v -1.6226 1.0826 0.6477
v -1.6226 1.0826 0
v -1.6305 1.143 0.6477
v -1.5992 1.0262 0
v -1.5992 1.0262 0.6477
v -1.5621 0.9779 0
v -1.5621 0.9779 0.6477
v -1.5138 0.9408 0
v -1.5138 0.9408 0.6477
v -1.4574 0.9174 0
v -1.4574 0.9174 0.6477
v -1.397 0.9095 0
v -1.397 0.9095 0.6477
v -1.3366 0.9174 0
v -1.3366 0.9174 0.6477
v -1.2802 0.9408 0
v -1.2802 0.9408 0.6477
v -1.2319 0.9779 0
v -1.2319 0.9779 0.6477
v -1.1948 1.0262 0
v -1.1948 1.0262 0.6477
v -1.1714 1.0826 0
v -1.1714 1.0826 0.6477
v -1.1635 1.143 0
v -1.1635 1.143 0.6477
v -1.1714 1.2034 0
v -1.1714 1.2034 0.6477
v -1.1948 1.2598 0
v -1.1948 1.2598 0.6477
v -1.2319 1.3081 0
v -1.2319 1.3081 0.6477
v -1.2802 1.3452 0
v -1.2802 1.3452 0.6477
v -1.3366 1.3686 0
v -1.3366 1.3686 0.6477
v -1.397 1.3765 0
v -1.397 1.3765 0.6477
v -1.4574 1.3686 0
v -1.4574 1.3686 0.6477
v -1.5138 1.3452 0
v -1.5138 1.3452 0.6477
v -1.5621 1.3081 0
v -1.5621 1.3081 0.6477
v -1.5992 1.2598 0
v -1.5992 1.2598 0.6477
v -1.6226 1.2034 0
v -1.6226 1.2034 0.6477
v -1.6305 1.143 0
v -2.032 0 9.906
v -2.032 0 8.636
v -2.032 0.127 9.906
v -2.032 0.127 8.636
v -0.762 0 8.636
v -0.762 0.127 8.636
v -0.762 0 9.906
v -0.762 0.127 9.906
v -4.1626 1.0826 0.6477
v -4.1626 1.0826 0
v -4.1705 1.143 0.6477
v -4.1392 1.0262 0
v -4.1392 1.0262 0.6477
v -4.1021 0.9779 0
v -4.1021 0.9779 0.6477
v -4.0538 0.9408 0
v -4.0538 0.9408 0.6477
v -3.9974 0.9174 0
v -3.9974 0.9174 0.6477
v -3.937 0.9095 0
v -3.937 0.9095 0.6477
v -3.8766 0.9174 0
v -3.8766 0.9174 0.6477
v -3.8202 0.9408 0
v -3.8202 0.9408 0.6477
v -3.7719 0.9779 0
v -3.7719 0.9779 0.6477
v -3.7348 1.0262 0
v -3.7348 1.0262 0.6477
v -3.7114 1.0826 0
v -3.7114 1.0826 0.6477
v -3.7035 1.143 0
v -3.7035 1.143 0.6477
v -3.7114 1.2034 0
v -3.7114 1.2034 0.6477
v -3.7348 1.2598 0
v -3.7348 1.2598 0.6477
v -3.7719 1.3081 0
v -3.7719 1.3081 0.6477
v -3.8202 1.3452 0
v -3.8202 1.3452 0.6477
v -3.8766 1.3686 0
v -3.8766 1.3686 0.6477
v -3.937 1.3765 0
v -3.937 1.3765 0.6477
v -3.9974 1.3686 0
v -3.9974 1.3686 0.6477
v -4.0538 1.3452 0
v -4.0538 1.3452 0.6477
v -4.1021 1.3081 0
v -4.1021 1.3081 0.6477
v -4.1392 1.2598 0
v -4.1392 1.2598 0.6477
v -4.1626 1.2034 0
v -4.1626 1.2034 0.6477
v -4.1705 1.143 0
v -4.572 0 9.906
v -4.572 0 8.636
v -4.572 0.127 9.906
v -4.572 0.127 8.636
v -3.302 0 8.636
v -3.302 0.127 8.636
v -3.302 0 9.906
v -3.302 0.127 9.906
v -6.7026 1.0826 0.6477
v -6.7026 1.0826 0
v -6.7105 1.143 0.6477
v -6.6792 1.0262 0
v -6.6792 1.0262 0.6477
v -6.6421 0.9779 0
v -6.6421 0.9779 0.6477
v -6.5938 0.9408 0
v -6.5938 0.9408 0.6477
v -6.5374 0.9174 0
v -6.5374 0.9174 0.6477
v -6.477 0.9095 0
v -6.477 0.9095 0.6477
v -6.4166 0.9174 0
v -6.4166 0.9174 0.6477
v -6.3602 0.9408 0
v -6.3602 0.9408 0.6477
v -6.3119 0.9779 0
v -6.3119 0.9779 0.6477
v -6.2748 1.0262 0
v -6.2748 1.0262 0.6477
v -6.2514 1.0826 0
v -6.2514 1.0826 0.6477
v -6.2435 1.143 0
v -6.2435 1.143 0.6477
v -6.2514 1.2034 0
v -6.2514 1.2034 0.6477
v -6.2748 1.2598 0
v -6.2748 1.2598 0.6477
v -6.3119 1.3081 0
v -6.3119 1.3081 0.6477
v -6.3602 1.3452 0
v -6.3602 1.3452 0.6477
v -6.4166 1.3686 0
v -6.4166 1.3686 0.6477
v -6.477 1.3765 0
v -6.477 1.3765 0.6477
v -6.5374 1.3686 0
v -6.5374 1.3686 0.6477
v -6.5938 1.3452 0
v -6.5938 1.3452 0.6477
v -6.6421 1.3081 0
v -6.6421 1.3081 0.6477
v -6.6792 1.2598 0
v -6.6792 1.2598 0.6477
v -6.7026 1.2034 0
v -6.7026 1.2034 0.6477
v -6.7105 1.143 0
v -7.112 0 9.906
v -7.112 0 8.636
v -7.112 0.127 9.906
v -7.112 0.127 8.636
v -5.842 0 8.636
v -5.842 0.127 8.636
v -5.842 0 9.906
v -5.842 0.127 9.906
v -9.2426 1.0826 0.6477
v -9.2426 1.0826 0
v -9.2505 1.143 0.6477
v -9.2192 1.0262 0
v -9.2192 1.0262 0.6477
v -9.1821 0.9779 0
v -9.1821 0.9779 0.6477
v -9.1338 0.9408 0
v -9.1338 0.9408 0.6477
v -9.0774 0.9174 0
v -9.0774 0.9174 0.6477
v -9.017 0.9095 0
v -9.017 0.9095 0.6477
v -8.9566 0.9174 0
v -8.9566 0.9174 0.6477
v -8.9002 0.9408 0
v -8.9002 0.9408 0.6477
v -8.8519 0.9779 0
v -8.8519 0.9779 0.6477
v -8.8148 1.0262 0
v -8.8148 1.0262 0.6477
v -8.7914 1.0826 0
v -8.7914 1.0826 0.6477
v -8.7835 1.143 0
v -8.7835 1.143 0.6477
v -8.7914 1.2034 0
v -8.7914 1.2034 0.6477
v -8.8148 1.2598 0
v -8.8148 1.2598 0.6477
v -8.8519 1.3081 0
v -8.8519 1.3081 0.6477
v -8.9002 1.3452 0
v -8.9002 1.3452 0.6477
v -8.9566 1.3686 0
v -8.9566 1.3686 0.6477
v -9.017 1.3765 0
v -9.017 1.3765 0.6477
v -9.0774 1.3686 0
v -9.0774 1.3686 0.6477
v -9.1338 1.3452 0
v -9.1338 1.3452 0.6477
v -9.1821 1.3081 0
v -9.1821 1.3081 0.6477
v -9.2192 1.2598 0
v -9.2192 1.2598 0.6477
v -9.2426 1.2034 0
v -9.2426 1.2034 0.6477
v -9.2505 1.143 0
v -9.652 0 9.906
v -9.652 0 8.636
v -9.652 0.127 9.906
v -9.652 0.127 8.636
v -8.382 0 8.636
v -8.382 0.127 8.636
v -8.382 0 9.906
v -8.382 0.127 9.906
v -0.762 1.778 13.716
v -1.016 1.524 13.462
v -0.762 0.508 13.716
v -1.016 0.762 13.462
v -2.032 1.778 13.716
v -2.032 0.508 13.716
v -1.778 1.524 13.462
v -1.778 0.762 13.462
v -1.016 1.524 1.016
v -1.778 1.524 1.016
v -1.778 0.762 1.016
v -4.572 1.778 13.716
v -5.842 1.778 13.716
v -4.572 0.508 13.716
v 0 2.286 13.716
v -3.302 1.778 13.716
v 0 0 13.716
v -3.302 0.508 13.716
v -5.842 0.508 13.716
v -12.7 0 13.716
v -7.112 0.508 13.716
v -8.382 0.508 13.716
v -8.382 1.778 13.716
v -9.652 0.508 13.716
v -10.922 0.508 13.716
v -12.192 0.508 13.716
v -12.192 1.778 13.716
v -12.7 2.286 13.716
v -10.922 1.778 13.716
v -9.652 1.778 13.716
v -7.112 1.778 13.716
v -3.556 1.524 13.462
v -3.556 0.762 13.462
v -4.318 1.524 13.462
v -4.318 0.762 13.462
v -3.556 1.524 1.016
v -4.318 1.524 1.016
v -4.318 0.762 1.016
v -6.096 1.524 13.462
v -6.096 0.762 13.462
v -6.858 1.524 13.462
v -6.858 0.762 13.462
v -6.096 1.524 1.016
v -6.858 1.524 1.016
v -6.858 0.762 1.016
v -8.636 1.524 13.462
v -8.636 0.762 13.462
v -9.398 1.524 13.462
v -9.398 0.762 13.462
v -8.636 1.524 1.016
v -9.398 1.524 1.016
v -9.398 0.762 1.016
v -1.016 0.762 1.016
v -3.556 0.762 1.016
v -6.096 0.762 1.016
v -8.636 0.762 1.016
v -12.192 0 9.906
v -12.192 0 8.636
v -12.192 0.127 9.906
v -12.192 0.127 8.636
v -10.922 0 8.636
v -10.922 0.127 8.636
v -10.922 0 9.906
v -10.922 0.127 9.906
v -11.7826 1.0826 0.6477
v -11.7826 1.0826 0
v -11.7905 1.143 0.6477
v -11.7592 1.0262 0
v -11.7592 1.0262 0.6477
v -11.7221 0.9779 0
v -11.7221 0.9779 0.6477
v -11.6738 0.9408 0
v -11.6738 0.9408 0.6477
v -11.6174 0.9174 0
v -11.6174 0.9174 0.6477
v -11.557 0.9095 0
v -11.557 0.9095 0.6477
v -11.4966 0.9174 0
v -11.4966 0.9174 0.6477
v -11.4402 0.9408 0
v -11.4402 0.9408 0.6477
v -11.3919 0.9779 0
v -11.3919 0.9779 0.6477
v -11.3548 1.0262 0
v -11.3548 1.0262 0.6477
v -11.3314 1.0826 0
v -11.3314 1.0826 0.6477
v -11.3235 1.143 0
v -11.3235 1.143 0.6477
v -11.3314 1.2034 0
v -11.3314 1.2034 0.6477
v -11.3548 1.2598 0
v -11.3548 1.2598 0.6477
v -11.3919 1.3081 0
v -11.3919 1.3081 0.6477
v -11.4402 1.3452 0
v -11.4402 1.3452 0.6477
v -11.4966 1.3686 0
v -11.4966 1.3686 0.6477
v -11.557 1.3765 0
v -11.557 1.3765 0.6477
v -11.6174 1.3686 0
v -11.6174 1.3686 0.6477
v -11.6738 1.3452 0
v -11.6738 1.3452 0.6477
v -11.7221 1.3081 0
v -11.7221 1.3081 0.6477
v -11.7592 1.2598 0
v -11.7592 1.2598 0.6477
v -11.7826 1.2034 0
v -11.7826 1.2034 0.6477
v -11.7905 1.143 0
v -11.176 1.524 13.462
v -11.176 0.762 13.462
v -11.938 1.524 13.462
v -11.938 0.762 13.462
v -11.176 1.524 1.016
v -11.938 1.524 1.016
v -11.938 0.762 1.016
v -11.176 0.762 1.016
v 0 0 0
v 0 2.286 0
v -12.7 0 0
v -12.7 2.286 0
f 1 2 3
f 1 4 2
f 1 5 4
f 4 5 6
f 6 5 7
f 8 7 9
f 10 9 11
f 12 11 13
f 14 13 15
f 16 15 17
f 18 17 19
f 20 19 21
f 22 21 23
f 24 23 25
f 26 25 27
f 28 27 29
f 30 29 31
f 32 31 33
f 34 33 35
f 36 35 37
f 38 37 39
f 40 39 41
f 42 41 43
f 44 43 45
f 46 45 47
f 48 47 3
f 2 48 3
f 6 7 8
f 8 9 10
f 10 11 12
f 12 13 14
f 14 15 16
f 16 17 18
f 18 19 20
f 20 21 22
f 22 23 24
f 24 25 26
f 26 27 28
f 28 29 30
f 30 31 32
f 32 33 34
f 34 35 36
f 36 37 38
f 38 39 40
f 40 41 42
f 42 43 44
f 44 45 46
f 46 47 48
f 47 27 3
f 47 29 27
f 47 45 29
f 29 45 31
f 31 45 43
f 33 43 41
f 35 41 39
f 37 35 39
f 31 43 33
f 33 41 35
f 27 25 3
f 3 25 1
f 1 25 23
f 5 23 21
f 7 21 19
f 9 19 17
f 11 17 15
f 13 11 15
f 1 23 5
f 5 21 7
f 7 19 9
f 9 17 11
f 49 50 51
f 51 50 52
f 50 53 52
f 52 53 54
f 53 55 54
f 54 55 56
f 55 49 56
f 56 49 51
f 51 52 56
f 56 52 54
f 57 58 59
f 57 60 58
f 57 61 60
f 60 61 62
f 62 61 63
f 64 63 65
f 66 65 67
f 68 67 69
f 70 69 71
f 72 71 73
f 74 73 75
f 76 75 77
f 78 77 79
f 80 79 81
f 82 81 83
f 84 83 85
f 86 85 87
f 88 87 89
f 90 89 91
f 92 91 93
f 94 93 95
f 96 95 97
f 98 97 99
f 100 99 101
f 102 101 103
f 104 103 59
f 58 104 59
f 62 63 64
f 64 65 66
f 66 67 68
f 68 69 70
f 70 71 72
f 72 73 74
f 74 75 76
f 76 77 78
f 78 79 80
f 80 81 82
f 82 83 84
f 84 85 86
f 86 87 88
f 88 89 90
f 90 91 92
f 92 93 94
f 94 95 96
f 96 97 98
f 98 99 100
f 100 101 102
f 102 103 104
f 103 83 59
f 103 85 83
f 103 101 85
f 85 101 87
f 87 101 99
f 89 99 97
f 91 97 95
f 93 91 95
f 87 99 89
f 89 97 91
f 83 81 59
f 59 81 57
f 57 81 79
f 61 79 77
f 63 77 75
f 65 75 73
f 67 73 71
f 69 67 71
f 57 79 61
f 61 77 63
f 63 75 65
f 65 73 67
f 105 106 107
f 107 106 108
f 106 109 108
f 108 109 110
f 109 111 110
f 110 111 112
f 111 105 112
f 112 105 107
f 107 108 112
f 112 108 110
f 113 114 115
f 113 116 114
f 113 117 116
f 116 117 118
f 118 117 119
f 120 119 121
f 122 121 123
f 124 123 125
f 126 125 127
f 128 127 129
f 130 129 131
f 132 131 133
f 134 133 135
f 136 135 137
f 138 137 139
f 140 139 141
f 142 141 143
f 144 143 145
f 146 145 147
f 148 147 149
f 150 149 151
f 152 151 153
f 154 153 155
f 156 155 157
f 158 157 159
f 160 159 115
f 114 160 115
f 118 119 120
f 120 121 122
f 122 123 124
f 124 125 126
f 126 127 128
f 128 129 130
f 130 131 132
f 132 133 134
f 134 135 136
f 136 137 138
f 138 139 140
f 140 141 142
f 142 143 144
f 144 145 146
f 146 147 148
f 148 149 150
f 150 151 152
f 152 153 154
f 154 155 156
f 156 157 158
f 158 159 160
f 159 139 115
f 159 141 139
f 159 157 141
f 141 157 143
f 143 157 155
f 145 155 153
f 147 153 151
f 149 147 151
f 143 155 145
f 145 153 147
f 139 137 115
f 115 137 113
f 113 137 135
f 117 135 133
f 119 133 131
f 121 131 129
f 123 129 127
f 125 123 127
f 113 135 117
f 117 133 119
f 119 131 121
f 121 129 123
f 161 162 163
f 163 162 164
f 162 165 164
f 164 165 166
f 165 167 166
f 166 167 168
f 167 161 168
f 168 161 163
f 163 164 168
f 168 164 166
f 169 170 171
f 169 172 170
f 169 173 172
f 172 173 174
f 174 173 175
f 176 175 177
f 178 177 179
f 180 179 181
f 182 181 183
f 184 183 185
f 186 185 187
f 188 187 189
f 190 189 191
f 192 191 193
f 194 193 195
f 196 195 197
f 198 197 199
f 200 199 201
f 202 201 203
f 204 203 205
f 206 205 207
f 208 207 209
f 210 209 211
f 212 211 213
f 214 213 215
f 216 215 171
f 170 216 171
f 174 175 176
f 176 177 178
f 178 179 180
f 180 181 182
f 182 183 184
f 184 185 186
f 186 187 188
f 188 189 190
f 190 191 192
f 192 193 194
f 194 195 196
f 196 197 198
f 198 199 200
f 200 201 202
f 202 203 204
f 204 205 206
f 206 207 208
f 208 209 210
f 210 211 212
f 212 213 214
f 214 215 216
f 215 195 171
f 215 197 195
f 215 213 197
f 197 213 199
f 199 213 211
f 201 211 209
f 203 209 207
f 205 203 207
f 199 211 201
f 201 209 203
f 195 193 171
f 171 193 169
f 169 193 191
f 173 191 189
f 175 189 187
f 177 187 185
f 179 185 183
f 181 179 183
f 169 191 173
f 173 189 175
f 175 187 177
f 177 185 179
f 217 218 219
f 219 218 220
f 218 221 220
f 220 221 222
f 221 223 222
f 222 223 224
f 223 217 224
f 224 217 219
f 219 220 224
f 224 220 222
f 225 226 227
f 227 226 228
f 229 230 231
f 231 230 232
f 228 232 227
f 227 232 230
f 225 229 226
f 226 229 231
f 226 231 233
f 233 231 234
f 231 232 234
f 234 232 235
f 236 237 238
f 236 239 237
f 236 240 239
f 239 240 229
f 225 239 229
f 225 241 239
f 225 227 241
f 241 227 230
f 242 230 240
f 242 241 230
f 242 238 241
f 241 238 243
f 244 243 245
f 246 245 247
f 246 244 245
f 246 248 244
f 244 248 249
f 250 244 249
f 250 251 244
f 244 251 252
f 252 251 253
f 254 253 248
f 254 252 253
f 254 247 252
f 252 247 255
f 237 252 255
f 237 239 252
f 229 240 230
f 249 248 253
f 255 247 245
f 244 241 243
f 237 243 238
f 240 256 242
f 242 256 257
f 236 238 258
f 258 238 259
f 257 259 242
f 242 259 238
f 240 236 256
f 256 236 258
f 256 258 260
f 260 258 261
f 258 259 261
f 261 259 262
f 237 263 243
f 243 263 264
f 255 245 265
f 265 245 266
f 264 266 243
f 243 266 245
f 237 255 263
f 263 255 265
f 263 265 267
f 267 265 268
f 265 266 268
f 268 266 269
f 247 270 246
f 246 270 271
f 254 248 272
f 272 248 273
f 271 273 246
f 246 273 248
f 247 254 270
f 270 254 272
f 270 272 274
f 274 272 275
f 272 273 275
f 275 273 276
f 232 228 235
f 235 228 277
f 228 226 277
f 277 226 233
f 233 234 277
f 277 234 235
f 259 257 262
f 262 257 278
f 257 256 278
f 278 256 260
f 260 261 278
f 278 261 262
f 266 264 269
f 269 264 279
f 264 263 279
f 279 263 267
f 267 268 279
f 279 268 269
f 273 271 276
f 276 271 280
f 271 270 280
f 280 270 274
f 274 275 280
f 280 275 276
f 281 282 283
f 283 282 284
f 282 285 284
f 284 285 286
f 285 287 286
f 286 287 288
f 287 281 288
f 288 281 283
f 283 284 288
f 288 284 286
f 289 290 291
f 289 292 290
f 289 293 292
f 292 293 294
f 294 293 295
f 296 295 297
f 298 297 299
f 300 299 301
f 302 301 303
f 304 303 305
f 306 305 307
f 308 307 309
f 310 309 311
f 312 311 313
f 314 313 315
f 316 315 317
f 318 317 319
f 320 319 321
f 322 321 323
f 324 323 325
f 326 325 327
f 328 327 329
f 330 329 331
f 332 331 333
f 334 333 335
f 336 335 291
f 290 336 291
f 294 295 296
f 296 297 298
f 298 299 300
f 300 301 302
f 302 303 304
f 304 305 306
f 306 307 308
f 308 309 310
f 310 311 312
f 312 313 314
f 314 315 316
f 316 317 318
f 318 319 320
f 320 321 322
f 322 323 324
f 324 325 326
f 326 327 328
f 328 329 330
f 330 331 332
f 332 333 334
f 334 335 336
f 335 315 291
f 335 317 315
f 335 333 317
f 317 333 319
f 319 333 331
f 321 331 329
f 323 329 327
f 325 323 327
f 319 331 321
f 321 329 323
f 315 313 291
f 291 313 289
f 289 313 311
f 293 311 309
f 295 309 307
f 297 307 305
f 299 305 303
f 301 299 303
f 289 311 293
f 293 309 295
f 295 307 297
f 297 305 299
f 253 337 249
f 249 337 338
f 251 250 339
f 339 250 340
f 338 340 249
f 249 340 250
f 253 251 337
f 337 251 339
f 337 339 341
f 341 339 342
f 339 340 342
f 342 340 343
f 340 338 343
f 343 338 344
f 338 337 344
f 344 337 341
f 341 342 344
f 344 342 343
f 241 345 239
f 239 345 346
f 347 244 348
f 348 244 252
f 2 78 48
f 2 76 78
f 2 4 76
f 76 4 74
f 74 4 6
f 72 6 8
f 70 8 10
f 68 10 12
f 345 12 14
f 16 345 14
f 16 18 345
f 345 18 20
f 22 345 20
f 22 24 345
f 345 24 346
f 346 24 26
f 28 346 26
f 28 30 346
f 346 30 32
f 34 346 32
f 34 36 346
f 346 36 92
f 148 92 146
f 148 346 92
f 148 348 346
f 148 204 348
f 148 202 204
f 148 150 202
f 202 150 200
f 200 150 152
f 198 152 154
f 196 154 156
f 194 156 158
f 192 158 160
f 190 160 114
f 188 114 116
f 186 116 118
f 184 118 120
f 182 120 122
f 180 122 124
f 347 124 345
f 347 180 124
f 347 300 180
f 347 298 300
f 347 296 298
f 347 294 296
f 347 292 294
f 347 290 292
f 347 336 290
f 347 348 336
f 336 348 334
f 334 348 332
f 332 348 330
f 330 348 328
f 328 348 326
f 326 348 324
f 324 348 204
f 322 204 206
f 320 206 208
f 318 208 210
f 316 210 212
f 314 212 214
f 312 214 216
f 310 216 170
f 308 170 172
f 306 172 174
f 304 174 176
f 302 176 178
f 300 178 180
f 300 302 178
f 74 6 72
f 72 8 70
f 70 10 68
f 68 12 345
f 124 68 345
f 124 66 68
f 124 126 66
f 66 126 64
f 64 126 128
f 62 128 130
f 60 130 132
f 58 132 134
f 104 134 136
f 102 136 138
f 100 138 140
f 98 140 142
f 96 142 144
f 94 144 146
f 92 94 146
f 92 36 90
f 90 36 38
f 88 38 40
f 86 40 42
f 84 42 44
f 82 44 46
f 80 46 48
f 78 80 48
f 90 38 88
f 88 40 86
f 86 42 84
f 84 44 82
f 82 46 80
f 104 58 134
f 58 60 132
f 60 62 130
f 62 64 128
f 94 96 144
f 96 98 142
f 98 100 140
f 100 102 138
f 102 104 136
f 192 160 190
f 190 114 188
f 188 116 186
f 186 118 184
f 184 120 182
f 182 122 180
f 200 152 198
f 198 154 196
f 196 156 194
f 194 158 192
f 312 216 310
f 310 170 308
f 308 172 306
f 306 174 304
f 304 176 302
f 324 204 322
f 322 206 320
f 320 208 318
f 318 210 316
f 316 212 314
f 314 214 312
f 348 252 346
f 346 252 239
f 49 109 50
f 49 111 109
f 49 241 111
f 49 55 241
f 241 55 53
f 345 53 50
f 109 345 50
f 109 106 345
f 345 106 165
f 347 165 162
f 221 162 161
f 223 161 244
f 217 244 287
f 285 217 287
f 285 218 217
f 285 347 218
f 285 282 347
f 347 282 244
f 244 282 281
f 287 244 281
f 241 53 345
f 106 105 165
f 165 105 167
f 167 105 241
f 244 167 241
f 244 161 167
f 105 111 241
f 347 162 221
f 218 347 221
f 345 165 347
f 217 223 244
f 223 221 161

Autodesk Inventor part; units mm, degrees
ref_plane "YZ Plane" through (0, 0, 0) normal (1, 0, 0) x (0, 1, 0)
ref_plane "XZ Plane" through (0, 0, 0) normal (0, 1, 0) x (-1, 0, 0)
ref_plane "XY Plane" through (0, 0, 0) normal (0, 0, 1) x (1, 0, 0)
sketch "Sketch1" plane through (0, 0, 0) normal (0, 1, 0) x (-1, 0, 0)
  line L0 (0, 0) -> (12.7, 0)
  line L1 (12.7, 0) -> (12.7, 13.716)
  line L2 (12.7, 13.716) -> (0, 13.716)
  line L3 (0, 13.716) -> (0, 0)
  dimension "d0" = 12.7
  dimension "d1" = 13.716
extrude "Extrusion1" add sketch "Sketch1" along normal blind 2.286
sketch "Sketch2" plane through (-12.7, 0, 13.716) normal (0, 0, 1) x (1, 0, 0)
  line L0 (0, 2.286) -> (12.7, 2.286) projected
  line L1 (0, 0) -> (0, 2.286) projected
  line L2 (0.762, 1.524) -> (1.524, 1.524)
  line L3 (1.524, 1.524) -> (1.524, 0.762)
  line L4 (1.524, 0.762) -> (0.762, 0.762)
  line L5 (0.762, 0.762) -> (0.762, 1.524)
  dimension "d4" = 0.762
  dimension "d5" = 0.762
  dimension "d6" = 0.762
  dimension "d7" = 0.762
extrude "Extrusion2" cut sketch "Sketch2" against normal blind 12.7
chamfer "Chamfer1" distance 0.254 angle 45 4 edges at (-11.938, 1.143, 13.716) (-11.557, 1.524, 13.716) (-11.176, 1.143, 13.716) (-11.557, 0.762, 13.716)
sketch "Sketch3" plane through (0, 0, 0) normal (0, 0, -1) x (-1, 0, 0)
  line L0 (11.938, 1.524) -> (11.176, 1.524) projected
  line L1 (11.938, 0.762) -> (11.938, 1.524) projected
  line L2 (11.176, 0.762) -> (11.938, 0.762) projected
  line L3 (11.176, 1.524) -> (11.176, 0.762) projected
  circle A0 centre (11.557, 1.143) radius 0.2335
  point P0 (11.557, 1.524)
  point P1 (11.176, 1.143)
extrude "Extrusion3" cut sketch "Sketch3" against normal blind 0.6477 contours A0
sketch "Sketch4" plane through (0, 0, 0) normal (0, -1, 0) x (1, 0, 0)
  line L0 (-12.7, 13.716) -> (0, 13.716) projected
  line L1 (-12.7, 0) -> (-12.7, 13.716) projected
  line L2 (-11.176, 13.462) -> (-11.176, 1.016) projected
  line L3 (-11.938, 13.462) -> (-11.938, 1.016) projected
  line L4 (-11.176, 1.016) -> (-11.938, 1.016) projected
  line L5 (-12.192, 9.906) -> (-10.922, 9.906)
  line L6 (-10.922, 9.906) -> (-10.922, 8.636)
  line L7 (-10.922, 8.636) -> (-12.192, 8.636)
  line L8 (-12.192, 8.636) -> (-12.192, 9.906)
  dimension "d18" = 0.508
  dimension "d19" = 1.27
  dimension "d20" = 1.27
  dimension "d21" = 3.81
extrude "Extrusion4" cut sketch "Sketch4" against normal blind 0.127 contours L5 L6 L7 L2 | L2 L7 L3 L5 | L3 L7 L8 L5
pattern_linear "Rectangular Pattern1" count 5 spacing 2.54 along (1, 0, 0) of "Extrusion2", "Chamfer1", "Extrusion3", "Extrusion4"
properties part number "Five Pin Plug"
